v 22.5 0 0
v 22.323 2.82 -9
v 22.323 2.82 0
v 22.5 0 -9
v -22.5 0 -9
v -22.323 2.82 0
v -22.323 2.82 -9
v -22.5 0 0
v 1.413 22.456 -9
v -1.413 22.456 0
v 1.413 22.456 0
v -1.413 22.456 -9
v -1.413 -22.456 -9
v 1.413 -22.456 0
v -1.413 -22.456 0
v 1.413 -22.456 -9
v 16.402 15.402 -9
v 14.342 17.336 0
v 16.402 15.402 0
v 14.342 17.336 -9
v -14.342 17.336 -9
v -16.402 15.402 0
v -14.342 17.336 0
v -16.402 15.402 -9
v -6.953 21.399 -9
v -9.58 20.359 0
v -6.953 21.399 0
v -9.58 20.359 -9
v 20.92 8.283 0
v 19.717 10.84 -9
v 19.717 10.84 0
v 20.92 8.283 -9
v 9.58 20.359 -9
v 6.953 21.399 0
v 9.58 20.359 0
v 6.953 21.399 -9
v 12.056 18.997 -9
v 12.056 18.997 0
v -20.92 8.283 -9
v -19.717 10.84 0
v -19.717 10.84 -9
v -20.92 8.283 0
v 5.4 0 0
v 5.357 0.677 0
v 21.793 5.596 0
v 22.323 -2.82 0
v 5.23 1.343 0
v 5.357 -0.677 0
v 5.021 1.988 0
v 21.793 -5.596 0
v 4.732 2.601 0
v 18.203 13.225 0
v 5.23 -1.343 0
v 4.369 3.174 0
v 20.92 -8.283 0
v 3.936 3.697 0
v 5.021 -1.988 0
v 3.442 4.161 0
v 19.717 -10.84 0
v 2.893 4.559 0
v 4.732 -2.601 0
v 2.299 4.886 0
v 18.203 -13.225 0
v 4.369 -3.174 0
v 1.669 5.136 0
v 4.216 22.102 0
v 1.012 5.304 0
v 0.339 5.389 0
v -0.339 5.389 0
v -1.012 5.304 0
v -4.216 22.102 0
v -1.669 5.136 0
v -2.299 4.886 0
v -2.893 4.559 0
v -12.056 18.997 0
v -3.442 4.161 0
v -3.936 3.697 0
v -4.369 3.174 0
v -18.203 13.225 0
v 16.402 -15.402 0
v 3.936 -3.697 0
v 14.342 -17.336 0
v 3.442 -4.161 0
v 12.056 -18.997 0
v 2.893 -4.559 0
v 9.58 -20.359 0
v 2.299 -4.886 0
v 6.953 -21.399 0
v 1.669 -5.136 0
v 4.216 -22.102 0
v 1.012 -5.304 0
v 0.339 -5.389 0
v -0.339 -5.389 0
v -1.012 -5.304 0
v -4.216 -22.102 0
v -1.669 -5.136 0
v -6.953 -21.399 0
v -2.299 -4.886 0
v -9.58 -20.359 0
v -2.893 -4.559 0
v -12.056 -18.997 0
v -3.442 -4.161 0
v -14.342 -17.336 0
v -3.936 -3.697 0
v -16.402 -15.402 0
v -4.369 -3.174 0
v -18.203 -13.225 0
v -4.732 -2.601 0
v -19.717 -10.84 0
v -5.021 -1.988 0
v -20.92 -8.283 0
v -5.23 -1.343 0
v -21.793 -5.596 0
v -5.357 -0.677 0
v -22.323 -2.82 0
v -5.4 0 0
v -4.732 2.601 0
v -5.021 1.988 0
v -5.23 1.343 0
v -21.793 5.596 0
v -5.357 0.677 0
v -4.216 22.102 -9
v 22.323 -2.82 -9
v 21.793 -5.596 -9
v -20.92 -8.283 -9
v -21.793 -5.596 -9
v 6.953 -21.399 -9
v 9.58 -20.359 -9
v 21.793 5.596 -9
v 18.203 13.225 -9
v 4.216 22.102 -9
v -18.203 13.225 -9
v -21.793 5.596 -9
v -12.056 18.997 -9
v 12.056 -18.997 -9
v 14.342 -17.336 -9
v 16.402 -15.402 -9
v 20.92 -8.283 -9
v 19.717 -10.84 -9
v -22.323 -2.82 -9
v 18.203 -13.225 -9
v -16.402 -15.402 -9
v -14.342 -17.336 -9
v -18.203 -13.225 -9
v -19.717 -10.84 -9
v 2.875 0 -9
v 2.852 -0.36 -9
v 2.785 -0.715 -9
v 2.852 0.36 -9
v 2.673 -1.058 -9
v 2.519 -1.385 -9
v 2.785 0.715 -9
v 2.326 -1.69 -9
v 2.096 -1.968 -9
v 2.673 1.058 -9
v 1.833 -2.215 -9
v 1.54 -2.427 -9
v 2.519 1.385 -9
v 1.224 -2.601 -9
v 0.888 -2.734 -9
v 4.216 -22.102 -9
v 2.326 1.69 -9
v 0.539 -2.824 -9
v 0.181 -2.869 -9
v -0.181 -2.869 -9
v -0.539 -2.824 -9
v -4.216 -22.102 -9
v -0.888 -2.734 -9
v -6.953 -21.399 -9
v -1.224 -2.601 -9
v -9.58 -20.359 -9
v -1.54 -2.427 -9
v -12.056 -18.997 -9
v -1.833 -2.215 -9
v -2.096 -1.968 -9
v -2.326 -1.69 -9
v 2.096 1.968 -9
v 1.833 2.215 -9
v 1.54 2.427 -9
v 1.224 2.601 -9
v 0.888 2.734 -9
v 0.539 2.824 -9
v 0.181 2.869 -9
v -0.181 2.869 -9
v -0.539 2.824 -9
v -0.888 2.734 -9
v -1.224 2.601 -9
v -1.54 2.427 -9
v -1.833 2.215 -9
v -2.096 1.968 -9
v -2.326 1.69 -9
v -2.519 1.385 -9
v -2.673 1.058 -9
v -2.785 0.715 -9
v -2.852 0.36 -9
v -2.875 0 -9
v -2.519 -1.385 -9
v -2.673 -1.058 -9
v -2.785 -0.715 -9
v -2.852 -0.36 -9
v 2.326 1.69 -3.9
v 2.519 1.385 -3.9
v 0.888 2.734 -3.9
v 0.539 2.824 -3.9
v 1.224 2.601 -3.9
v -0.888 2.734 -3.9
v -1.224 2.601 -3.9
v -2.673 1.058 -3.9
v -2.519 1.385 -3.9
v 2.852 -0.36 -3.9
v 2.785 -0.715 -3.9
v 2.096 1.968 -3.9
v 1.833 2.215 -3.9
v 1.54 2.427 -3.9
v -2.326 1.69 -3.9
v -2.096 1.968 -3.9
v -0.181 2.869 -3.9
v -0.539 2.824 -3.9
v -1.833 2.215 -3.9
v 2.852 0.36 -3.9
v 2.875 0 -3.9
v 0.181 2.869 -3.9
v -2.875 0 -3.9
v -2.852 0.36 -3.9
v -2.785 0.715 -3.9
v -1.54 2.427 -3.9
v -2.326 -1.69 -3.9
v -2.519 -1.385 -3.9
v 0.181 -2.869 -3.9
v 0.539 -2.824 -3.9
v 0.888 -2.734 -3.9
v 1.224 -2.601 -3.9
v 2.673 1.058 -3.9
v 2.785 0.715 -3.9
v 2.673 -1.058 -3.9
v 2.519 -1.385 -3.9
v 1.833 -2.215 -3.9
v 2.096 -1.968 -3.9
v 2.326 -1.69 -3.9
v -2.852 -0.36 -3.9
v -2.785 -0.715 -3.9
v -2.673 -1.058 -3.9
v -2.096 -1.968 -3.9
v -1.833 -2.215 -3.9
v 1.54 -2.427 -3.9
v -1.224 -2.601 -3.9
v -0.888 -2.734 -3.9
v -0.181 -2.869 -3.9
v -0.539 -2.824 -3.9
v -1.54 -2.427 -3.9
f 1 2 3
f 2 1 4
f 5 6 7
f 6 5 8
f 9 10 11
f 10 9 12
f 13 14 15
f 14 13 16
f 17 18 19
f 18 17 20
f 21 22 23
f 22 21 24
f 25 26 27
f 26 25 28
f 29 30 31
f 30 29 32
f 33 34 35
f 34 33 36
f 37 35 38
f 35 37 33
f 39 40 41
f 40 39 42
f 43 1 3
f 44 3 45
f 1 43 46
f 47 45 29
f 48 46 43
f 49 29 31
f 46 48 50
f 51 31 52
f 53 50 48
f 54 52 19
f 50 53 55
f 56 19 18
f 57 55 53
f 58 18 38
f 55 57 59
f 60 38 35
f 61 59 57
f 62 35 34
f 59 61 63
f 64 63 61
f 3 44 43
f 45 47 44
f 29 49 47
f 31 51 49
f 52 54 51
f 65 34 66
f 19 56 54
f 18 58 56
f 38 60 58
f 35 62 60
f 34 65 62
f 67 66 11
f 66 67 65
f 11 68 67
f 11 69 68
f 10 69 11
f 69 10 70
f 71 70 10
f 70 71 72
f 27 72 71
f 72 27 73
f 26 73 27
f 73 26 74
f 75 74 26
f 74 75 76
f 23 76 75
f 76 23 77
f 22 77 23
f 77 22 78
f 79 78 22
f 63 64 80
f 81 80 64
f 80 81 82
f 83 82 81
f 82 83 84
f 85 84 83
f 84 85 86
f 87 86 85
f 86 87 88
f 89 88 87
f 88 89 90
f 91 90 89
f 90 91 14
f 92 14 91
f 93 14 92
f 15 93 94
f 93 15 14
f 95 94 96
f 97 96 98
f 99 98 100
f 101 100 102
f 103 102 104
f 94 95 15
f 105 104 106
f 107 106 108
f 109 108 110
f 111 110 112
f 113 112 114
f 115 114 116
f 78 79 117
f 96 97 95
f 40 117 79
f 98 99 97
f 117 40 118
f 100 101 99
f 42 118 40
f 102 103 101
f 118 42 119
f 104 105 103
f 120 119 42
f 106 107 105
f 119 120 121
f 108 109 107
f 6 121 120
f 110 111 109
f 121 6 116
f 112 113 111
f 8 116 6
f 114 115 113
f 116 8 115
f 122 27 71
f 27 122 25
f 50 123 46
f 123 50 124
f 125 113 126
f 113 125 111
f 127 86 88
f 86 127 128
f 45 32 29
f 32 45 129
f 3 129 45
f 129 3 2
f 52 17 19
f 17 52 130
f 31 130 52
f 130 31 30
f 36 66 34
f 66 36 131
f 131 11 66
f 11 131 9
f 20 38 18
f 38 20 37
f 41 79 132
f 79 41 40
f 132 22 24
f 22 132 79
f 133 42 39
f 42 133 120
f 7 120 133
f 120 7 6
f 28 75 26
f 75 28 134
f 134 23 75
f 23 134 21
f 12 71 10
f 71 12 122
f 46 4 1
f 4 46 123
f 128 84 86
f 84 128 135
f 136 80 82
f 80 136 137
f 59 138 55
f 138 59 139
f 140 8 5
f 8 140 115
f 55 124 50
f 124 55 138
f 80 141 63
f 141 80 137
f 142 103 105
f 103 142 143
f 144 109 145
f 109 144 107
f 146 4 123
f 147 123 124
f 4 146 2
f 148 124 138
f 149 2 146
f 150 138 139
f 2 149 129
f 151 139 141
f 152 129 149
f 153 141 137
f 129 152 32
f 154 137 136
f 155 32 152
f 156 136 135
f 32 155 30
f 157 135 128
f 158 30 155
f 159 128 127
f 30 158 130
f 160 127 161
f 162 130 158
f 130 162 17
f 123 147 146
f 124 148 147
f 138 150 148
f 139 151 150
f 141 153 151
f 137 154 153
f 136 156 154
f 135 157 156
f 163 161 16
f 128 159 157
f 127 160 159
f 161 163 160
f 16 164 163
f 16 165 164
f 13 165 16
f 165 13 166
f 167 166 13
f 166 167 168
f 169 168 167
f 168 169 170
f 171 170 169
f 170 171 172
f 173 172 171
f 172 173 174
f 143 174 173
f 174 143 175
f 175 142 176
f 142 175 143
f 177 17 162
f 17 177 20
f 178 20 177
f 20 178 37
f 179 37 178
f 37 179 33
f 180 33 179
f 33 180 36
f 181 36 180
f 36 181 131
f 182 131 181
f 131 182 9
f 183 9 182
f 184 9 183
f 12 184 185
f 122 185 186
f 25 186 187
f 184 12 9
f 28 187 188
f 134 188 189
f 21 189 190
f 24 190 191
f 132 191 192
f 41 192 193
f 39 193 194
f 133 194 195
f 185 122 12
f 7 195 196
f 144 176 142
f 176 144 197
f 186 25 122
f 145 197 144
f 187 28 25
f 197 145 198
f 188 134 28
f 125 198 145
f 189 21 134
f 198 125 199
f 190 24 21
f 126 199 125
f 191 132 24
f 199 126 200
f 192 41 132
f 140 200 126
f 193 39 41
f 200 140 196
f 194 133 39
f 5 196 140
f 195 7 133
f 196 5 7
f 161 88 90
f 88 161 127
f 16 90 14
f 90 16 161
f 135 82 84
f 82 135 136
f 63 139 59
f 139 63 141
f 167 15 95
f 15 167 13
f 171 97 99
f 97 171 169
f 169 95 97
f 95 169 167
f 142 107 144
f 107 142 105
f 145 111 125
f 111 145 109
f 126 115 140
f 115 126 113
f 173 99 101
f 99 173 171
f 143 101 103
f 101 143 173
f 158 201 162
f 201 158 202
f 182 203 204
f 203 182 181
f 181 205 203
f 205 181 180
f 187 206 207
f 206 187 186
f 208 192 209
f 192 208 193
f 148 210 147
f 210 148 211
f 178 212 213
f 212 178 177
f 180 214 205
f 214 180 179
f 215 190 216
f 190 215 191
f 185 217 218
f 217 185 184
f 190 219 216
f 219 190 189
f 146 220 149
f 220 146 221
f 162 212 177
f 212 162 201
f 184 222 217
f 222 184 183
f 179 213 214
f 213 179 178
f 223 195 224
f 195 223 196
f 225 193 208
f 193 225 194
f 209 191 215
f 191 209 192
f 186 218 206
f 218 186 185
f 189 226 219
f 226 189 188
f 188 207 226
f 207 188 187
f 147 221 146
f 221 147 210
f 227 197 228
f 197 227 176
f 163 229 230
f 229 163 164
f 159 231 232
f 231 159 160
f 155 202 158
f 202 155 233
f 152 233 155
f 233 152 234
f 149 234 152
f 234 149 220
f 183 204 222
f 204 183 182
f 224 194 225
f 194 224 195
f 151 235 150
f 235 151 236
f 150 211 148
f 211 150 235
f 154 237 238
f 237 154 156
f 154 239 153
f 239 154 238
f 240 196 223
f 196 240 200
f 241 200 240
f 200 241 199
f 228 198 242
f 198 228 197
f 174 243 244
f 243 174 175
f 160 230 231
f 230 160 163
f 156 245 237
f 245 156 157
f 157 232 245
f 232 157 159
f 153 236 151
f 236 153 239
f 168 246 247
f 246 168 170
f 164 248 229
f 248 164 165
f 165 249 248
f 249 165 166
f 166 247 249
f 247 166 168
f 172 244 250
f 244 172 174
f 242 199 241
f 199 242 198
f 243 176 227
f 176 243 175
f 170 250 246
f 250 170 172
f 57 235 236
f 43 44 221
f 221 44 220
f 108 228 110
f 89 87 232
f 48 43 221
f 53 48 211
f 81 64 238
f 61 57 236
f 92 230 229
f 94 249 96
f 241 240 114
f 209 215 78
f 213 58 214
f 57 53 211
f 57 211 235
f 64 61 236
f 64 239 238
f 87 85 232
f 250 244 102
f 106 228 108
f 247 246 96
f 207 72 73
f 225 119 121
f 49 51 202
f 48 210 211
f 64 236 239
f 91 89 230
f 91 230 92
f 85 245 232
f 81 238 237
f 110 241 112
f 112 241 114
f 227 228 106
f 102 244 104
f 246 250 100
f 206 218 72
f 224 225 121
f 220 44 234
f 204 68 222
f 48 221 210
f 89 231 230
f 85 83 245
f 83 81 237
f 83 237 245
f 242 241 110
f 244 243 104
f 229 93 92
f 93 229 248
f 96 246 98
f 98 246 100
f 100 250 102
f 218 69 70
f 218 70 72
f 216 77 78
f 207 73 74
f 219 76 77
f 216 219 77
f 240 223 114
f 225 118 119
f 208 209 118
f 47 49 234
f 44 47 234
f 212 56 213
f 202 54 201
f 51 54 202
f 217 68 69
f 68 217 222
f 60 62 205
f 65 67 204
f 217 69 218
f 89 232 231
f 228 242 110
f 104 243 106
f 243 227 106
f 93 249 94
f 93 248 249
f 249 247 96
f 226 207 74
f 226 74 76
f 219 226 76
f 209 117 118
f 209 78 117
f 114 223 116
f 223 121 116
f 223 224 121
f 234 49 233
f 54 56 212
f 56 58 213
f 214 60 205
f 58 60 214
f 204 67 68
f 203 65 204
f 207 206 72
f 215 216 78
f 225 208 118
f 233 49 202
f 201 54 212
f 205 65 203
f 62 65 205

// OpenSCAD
$fn = 50;


difference() {
	union() {
		translate(v = [0, 0, -9.0000000000]) {
			cylinder(h = 9, r = 22.5000000000);
		}
		translate(v = [0, 0, -12.0000000000]) {
			cylinder(h = 12, r = 2.8750000000);
		}
	}
	union() {
		translate(v = [0, 0, 0]) {
			rotate(a = [0, 0, 0]) {
				difference() {
					union() {
						translate(v = [0, 0, -12.0000000000]) {
							cylinder(h = 12, r = 2.6000000000);
						}
						translate(v = [0, 0, -3.9000000000]) {
							cylinder(h = 3.9000000000, r1 = 2.8750000000, r2 = 5.4000000000);
						}
						translate(v = [0, 0, -12.0000000000]) {
							cylinder(h = 12, r = 2.8750000000);
						}
						translate(v = [0, 0, -12.0000000000]) {
							cylinder(h = 12, r = 2.6000000000);
						}
					}
					union();
				}
			}
		}
	}
}
